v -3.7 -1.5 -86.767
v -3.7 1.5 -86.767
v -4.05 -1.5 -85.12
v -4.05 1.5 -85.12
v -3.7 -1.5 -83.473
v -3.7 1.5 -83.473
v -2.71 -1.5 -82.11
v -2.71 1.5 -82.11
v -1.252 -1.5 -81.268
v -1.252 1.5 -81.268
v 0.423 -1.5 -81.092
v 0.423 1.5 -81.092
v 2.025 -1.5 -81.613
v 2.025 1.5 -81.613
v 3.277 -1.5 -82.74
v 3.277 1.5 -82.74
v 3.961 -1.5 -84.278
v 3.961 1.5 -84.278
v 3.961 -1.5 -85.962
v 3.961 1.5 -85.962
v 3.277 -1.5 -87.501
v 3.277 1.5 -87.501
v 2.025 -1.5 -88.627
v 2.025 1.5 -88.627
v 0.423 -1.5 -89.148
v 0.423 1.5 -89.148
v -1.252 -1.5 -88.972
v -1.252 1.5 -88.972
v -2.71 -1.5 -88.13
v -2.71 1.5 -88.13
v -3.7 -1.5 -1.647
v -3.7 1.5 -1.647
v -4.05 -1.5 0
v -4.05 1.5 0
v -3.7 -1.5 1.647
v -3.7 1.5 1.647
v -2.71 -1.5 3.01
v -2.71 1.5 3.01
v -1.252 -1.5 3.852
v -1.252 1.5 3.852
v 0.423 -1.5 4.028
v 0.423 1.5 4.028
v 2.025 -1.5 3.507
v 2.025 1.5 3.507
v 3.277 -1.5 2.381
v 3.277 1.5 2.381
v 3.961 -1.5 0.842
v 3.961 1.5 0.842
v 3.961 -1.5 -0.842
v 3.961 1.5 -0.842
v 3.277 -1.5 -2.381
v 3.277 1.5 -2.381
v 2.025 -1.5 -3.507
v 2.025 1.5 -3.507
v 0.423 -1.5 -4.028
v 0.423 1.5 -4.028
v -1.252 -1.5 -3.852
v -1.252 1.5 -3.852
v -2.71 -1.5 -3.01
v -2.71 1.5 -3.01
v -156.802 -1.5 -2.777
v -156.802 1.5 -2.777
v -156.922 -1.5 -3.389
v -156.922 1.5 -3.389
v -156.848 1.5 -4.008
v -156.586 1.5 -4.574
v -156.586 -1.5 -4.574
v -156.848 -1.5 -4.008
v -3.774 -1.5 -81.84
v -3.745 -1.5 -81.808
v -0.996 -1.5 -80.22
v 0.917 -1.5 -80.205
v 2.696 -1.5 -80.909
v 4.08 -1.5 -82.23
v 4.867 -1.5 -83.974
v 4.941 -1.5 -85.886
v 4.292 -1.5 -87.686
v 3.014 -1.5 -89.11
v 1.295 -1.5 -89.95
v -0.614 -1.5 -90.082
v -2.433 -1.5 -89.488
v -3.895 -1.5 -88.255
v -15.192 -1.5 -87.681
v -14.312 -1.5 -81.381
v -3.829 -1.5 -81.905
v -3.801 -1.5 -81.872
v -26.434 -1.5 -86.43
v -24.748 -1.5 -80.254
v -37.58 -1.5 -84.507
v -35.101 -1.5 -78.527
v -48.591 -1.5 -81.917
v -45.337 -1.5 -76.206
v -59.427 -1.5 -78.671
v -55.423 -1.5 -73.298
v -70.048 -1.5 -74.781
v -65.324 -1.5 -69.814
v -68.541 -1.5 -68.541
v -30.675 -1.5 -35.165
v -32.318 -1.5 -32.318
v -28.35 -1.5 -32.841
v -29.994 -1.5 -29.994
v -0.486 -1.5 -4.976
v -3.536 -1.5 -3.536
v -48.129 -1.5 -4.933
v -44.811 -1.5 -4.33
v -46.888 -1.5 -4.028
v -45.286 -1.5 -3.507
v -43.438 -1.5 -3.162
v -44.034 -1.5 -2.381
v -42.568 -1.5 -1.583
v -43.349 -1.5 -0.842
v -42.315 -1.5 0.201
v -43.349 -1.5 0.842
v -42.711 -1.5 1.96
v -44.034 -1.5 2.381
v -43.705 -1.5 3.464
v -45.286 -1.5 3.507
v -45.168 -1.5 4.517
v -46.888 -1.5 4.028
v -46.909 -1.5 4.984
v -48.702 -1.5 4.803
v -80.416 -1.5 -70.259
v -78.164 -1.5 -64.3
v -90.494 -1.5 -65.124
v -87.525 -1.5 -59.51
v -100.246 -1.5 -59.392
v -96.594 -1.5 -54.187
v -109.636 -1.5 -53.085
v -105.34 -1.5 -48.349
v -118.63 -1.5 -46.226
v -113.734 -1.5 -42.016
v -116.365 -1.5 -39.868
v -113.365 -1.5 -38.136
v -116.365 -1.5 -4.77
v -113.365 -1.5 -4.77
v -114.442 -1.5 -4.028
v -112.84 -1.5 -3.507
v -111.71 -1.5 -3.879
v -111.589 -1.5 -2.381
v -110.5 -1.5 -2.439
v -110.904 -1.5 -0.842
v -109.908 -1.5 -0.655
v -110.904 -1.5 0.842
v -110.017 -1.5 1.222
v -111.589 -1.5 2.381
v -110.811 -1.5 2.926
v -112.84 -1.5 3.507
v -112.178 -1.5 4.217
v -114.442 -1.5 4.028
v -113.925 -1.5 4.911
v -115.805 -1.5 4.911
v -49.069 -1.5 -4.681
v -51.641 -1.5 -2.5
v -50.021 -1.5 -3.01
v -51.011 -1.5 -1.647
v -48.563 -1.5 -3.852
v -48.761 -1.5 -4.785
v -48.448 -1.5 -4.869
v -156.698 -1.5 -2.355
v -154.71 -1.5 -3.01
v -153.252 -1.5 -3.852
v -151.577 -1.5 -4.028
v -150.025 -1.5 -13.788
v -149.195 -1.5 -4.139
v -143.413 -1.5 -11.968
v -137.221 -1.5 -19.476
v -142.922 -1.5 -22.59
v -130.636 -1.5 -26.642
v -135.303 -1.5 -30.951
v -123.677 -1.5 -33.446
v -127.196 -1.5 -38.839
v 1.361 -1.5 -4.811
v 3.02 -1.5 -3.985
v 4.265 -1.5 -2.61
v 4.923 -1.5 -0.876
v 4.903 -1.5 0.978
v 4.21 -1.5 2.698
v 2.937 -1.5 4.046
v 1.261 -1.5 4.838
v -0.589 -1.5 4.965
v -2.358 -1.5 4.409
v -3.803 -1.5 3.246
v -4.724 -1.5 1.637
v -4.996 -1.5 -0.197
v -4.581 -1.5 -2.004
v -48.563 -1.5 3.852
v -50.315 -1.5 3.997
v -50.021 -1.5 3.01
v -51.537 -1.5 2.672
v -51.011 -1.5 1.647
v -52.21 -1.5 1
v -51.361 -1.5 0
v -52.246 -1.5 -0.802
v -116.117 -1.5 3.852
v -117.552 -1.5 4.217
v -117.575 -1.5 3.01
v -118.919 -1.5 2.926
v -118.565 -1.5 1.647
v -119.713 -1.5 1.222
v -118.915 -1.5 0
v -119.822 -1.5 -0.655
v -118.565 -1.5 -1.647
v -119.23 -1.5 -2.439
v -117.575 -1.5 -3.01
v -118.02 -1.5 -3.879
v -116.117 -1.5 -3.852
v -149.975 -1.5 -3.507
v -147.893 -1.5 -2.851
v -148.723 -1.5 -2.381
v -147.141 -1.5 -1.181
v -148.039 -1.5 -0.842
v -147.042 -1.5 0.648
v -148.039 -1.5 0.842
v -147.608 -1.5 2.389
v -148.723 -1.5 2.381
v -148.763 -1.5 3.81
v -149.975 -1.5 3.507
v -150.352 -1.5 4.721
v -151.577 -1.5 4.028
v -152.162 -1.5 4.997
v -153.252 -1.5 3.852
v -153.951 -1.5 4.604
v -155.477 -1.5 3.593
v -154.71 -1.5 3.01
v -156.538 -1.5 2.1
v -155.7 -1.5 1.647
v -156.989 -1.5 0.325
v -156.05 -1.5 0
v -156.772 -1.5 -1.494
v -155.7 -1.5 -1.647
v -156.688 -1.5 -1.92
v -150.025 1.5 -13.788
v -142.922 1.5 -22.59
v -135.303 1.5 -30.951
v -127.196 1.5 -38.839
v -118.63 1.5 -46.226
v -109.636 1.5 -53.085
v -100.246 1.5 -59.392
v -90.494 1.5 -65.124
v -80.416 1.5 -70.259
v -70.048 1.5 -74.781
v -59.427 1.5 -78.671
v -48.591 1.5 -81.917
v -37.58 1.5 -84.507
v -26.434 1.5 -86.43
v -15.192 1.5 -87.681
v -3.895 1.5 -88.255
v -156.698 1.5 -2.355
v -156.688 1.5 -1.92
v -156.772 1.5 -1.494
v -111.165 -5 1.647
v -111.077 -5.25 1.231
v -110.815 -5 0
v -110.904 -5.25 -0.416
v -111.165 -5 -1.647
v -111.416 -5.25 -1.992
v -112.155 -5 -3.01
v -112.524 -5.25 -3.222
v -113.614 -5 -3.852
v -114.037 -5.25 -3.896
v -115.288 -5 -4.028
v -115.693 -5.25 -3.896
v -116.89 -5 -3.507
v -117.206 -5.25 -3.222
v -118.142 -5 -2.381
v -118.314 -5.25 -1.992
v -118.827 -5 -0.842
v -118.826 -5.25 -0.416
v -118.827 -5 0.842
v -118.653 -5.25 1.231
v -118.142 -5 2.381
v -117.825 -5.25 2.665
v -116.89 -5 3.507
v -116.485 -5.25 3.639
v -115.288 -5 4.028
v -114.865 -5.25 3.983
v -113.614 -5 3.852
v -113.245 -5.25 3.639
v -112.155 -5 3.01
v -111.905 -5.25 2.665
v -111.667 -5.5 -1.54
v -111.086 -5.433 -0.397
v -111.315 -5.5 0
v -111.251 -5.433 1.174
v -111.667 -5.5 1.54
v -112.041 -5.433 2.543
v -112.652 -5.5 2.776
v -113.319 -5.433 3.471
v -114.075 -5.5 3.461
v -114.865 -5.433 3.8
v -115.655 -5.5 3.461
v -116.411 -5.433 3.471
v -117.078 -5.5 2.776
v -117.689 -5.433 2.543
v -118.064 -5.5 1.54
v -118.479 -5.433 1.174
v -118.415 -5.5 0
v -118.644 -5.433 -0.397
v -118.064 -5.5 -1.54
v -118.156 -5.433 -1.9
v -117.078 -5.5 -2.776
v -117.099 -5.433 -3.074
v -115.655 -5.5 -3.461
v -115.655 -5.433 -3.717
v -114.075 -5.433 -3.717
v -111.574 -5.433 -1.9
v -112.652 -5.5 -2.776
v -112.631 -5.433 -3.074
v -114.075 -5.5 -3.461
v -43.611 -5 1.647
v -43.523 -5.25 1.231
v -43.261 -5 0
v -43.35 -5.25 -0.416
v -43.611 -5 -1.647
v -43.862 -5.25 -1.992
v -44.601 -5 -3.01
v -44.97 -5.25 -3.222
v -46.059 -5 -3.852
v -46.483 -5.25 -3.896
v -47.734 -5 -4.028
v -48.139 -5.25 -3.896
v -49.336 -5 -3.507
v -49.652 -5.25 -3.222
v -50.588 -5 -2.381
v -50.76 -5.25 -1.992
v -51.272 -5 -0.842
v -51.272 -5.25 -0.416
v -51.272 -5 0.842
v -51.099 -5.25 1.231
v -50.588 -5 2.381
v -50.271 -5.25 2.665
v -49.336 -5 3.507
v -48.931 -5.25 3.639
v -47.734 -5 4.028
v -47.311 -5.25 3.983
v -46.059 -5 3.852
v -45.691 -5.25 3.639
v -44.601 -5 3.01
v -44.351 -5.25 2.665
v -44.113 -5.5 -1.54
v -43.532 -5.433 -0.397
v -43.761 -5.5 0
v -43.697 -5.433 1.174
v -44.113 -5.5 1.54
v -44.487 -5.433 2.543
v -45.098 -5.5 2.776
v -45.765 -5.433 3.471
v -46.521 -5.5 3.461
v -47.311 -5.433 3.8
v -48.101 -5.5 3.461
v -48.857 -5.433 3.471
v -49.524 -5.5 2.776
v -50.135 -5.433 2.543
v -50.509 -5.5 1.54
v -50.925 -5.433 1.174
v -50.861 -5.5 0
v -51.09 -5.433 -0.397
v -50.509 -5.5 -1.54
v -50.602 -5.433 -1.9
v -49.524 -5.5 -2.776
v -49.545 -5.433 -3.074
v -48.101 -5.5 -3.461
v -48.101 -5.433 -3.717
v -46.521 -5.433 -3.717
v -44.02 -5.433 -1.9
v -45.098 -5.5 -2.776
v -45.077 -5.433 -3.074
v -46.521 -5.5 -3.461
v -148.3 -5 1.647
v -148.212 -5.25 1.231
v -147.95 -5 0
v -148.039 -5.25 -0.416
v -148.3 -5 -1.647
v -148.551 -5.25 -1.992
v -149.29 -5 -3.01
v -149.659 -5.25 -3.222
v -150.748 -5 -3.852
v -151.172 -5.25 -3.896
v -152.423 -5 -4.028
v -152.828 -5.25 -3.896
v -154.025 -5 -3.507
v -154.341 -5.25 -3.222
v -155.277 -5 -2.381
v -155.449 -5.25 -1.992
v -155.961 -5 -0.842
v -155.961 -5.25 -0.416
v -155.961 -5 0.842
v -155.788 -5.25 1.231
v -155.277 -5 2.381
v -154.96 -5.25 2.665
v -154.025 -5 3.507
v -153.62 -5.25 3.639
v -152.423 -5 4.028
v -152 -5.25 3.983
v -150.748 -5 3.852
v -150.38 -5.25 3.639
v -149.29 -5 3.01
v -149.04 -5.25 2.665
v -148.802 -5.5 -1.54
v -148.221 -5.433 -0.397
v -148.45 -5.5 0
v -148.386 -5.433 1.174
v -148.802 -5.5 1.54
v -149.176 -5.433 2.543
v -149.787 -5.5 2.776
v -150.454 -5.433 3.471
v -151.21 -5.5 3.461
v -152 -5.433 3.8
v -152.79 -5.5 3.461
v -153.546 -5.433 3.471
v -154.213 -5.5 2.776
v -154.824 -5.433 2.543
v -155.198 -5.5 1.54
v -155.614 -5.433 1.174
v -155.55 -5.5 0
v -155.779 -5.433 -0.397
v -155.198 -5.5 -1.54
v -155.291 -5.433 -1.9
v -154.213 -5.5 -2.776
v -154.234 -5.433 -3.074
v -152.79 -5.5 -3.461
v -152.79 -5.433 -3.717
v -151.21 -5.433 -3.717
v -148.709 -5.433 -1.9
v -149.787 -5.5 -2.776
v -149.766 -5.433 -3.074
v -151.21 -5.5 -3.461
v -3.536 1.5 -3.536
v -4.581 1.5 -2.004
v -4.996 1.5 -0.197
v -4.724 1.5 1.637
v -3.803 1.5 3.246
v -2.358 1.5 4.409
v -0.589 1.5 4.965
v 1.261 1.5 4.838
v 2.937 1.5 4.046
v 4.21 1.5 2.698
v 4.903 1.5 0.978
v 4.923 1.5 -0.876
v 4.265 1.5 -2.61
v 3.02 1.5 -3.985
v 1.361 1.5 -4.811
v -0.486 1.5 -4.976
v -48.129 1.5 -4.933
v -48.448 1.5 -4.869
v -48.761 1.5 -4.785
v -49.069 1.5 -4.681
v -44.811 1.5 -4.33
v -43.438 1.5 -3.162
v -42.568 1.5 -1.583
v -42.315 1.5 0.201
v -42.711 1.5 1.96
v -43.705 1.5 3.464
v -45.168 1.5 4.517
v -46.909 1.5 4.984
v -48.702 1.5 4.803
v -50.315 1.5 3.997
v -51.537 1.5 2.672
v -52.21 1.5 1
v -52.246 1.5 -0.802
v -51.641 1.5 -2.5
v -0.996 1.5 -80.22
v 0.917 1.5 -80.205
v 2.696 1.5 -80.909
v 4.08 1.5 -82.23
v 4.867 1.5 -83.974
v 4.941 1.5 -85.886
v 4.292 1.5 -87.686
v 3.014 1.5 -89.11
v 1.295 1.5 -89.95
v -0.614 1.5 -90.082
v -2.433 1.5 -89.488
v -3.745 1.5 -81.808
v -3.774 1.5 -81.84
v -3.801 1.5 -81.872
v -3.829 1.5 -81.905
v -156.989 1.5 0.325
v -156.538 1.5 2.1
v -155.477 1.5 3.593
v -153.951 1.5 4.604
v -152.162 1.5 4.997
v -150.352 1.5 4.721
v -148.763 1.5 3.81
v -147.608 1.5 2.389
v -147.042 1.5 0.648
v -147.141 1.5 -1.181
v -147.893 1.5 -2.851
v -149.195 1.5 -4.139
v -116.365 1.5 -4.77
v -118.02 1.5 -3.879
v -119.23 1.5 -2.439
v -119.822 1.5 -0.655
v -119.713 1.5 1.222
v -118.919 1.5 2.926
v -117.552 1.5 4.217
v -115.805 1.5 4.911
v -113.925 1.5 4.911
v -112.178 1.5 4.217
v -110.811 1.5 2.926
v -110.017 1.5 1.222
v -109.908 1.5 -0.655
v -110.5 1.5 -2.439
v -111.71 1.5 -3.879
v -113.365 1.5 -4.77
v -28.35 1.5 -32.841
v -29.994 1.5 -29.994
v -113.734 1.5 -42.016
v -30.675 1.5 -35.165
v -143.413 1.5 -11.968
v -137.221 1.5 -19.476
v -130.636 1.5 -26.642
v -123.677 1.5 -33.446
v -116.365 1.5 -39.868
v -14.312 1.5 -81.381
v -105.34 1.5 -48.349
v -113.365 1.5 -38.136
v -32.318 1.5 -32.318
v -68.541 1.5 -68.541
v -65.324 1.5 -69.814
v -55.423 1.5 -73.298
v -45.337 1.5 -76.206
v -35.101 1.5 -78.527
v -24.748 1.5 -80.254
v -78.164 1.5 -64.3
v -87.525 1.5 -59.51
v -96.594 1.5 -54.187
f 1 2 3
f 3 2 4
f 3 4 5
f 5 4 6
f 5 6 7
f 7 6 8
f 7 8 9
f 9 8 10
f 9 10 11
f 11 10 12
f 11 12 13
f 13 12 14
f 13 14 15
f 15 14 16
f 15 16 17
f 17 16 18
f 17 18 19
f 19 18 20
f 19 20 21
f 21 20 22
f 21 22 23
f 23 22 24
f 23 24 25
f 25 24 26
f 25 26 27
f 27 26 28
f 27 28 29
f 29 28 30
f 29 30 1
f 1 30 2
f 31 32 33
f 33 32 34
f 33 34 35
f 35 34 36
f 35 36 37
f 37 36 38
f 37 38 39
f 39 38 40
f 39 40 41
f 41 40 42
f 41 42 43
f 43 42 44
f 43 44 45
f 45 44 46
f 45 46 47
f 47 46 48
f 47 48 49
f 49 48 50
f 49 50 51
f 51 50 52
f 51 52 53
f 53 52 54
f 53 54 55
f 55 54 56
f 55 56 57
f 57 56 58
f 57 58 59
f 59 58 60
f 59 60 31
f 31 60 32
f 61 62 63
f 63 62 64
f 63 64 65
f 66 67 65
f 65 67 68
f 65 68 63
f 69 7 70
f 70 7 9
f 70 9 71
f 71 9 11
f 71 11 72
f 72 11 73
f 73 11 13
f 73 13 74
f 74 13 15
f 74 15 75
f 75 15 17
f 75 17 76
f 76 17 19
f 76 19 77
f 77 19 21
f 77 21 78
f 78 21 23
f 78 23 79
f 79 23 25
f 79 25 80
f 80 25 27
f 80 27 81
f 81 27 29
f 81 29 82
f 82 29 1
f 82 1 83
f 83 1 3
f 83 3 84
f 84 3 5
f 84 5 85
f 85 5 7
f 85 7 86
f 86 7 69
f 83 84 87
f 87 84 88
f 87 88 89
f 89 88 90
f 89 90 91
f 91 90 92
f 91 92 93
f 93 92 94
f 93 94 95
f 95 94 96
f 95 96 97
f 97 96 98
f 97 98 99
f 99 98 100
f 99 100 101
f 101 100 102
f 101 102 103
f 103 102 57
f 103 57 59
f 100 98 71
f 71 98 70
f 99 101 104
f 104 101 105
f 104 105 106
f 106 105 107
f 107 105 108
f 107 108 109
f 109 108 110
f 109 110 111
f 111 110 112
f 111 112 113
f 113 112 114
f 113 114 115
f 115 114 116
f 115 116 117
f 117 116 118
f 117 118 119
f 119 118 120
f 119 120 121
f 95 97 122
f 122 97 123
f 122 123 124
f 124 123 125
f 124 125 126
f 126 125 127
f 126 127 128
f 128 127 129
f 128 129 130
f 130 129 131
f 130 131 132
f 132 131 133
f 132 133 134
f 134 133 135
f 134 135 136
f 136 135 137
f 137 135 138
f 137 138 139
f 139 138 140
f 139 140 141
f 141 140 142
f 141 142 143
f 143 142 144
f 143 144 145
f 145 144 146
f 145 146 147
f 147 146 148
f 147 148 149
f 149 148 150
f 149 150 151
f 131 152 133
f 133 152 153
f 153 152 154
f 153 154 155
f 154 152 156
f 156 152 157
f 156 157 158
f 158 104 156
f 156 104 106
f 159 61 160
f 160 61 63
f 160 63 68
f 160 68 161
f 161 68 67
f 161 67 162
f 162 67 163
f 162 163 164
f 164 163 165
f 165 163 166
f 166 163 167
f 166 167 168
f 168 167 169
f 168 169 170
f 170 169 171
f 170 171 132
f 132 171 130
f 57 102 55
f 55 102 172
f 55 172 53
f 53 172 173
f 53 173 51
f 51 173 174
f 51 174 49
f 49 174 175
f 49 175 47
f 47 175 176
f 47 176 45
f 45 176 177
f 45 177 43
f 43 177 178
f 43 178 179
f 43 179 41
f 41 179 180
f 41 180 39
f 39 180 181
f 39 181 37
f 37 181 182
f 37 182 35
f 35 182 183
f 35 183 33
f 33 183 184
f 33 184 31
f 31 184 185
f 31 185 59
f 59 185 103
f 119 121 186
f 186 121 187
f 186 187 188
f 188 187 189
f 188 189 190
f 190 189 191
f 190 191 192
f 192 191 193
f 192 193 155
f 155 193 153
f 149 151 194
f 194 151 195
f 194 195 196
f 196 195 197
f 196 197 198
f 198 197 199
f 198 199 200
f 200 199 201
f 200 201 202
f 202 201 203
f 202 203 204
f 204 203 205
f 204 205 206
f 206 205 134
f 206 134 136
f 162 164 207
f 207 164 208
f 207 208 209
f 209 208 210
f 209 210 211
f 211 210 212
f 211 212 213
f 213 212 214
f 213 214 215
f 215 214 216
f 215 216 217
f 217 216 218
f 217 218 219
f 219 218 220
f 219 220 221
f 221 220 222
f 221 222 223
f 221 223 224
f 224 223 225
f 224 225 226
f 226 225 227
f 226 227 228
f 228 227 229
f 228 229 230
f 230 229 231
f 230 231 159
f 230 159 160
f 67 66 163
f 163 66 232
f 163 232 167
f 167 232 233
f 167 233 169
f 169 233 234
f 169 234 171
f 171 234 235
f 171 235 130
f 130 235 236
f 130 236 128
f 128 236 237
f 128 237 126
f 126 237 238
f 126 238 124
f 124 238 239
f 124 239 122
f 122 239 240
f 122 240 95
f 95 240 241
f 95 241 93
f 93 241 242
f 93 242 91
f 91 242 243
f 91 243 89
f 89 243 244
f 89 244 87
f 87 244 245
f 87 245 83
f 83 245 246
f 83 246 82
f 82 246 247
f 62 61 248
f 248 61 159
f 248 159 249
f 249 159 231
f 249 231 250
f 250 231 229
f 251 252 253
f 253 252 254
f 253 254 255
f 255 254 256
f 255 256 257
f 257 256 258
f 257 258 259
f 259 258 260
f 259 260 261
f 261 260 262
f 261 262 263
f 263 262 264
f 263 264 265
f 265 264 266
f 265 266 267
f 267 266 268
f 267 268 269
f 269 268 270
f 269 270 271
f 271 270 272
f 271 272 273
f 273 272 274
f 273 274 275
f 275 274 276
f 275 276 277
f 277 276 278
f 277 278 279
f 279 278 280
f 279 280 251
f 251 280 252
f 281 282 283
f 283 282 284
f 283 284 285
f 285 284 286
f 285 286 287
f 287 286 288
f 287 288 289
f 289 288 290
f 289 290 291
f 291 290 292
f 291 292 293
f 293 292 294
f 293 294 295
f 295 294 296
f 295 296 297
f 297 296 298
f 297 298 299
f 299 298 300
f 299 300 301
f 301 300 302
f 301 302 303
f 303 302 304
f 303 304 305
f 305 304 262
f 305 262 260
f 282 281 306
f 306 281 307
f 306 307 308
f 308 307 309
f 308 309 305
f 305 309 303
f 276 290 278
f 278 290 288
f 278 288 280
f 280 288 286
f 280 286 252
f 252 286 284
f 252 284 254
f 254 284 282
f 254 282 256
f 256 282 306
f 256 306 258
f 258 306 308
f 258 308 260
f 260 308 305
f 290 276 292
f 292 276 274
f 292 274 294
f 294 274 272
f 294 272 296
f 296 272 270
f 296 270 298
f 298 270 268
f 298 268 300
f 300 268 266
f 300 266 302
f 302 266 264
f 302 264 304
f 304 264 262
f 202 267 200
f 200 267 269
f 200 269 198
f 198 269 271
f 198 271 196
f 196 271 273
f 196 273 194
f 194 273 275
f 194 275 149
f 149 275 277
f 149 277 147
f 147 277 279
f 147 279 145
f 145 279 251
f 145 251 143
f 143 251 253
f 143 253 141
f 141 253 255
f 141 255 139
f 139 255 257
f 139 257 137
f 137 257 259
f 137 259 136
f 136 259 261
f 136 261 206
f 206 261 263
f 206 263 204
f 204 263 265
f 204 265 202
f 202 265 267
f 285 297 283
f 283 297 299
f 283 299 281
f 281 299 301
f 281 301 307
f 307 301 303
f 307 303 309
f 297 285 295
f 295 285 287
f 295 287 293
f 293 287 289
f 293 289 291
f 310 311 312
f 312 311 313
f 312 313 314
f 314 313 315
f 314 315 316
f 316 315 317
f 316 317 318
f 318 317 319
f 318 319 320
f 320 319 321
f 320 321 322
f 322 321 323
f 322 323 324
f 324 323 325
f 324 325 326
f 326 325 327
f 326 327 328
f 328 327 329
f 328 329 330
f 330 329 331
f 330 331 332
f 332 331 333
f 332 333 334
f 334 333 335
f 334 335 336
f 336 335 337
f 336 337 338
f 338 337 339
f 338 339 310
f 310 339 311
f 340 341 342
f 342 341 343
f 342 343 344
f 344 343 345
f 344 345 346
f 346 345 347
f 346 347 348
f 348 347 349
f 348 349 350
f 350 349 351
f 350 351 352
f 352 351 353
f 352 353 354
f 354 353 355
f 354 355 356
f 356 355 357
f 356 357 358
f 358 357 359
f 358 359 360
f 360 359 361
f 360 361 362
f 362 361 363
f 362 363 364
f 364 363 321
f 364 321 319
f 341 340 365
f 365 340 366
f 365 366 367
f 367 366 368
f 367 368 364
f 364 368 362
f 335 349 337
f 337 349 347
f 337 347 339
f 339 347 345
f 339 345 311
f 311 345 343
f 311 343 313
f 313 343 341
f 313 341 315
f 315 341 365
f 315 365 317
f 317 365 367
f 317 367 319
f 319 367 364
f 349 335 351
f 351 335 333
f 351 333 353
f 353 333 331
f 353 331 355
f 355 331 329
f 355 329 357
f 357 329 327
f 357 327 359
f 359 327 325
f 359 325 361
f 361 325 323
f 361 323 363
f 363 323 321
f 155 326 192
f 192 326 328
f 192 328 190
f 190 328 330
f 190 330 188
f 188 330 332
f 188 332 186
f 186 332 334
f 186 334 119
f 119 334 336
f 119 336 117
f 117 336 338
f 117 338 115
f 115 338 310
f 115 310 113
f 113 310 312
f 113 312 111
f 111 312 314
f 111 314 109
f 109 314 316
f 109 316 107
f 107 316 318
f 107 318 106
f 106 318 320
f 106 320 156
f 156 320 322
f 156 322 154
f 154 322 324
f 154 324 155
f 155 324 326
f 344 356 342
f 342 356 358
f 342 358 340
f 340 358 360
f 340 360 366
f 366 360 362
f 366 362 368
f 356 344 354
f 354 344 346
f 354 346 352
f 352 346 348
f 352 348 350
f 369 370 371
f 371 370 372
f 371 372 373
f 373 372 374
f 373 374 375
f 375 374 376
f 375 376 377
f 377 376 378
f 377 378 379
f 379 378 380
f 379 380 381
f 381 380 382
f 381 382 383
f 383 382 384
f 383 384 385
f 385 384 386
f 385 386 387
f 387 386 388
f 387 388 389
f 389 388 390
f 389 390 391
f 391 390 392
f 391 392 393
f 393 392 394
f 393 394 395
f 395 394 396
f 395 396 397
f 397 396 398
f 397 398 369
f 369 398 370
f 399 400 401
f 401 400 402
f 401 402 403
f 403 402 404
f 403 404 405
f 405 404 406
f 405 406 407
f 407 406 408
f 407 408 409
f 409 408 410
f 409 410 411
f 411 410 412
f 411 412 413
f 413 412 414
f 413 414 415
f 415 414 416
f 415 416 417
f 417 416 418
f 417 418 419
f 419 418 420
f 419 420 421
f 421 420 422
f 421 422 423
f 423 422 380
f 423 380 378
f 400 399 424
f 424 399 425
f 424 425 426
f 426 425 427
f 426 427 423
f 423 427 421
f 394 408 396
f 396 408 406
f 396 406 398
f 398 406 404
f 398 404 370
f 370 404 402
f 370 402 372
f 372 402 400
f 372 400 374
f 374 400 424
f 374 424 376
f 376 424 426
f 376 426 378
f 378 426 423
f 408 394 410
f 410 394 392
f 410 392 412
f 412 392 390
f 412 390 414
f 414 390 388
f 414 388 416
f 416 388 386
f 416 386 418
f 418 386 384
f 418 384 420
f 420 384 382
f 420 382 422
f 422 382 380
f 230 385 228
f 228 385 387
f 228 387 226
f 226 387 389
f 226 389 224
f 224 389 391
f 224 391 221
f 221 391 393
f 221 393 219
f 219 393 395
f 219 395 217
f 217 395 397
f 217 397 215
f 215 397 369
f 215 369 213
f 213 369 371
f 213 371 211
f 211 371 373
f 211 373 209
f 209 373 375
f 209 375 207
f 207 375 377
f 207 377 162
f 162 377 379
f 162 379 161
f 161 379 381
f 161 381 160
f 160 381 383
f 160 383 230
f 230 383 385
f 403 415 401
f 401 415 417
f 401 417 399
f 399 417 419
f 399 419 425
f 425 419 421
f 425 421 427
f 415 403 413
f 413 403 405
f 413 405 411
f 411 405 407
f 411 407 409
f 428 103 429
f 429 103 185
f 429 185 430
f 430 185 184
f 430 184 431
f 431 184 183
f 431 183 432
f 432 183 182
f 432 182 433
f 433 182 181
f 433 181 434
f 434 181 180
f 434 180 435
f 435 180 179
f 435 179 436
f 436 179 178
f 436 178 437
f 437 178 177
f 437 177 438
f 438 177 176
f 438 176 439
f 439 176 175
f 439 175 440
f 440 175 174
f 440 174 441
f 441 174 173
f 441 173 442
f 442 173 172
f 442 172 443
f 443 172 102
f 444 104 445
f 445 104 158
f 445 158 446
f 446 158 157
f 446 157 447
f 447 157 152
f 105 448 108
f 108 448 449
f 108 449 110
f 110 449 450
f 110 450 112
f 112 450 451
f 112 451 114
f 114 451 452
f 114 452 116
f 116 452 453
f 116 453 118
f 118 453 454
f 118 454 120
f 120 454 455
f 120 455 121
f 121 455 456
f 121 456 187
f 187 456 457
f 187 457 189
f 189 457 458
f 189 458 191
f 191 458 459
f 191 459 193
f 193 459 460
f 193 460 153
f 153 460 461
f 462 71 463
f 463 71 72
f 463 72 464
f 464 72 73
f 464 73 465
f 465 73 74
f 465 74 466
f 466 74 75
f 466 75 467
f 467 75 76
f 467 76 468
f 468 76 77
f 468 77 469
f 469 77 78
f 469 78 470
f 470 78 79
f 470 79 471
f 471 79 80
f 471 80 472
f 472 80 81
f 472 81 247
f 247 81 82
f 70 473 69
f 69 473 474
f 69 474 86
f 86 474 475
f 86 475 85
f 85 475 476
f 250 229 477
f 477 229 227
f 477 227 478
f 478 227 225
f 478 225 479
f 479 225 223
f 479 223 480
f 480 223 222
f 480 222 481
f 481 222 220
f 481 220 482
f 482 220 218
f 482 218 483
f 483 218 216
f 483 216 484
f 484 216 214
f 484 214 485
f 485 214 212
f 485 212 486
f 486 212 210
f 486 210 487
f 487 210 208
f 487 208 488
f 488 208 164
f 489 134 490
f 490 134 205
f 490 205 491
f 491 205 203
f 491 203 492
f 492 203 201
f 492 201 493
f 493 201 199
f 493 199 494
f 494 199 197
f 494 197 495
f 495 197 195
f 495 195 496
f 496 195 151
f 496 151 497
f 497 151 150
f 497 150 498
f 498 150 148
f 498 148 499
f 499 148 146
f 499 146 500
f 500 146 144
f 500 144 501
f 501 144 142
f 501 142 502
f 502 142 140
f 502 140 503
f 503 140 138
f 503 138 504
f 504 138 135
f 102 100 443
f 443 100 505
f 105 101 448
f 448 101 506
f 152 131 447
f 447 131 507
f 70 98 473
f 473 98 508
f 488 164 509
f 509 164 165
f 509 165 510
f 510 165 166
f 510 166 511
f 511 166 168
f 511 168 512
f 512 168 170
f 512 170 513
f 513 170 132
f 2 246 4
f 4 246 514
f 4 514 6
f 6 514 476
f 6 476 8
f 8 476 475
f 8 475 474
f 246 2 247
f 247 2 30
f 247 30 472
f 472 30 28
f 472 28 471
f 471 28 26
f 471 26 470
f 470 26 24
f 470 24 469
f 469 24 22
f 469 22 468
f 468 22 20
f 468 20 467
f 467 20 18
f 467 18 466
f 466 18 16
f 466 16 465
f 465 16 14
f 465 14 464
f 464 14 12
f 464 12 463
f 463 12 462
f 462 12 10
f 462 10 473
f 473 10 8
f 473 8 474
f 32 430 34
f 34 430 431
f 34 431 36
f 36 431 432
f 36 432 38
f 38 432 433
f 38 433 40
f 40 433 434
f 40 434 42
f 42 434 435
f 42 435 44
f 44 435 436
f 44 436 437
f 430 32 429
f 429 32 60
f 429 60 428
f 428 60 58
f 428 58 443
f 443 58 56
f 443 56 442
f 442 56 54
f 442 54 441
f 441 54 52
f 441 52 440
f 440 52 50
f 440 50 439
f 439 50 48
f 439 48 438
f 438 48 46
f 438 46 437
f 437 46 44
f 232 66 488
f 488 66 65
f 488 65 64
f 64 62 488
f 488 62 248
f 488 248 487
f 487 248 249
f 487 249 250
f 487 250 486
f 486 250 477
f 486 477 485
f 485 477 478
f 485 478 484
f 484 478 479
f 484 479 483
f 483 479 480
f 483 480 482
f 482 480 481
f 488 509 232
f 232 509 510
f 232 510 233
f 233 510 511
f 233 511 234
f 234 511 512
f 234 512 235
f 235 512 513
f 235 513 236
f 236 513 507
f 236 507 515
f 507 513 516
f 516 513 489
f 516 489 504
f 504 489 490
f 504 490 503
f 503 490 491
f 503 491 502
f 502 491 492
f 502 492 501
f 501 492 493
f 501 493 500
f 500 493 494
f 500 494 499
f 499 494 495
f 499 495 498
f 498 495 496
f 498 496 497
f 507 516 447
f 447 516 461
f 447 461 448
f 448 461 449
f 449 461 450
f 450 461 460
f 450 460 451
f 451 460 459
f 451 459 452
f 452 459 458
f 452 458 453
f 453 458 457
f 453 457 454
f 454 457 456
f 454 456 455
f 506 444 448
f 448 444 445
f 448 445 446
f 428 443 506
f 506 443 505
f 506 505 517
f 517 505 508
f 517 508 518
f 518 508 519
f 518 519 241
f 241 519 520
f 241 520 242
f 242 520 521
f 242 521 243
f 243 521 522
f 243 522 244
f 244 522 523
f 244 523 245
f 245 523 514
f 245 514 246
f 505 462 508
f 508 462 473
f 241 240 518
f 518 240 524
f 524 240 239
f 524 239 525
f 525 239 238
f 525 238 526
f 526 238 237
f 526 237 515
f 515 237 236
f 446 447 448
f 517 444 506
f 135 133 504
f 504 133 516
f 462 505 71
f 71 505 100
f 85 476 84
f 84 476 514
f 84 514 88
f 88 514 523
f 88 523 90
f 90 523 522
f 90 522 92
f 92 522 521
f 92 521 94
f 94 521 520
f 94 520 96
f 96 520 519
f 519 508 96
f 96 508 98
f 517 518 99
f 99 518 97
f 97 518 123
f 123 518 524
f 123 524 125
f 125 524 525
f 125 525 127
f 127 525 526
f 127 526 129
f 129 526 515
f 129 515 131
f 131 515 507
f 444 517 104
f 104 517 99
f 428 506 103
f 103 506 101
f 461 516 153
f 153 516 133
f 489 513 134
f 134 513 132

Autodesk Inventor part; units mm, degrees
ref_plane "YZ Plane" through (0, 0, 0) normal (1, 0, 0) x (0, 1, 0)
ref_plane "XZ Plane" through (0, 0, 0) normal (0, 1, 0) x (-1, 0, 0)
ref_plane "XY Plane" through (0, 0, 0) normal (0, 0, 1) x (1, 0, 0)
sketch "Sketch1" plane through (0, 0, 0) normal (0, 1, 0) x (-1, 0, 0)
  arc A0 (-152, 0) -> (152, 0) centre (0, 100) ccw
  line L0 (0, -81.945) -> (-47.311, 0)
  line L1 (-47.311, 0) -> (47.311, 0) construction
  line L2 (47.311, 0) -> (0, -81.945)
  line L3 (0, 0) -> (68.5411, -68.5411)
  line L4 (0, 0) -> (-68.5411, -68.5411)
  line L5 (47.311, 0) -> (116.3651, -39.8684)
  line L6 (-47.311, 0) -> (-116.3651, -39.8684)
  line L7 (114.7776, -42.618) -> (48.4731, -4.3371)
  line L8 (48.4731, -4.3371) -> (0, -88.295)
  line L9 (0, -88.295) -> (-48.4731, -4.3371)
  line L10 (-48.4731, -4.3371) -> (-114.4332, -42.4192)
  line L11 (-66.0999, -70.5901) -> (0, -4.4901)
  line L12 (0, -4.4901) -> (66.2961, -70.7862)
  line L13 (116.3651, -39.8684) -> (114.7776, -42.618)
  line L14 (68.5411, -68.5411) -> (66.2961, -70.7862)
  line L15 (-66.0999, -70.5901) -> (-67.8825, -68.8075)
  line L16 (-114.4332, -42.4192) -> (-115.4867, -40.5945)
  arc A1 (-157.2837, -3.5223) -> (157.2837, -3.5223) centre (0, 100) ccw
  line L17 (157.2837, -3.5223) -> (152, 0)
  line L18 (-152, 0) -> (-157.2837, -3.5223)
  line L19 (116.3651, -39.8684) -> (113.3651, -39.8684)
  line L20 (113.3651, -39.8684) -> (113.3651, 0)
  line L21 (113.3651, 0) -> (116.3651, 0)
  line L22 (116.3651, 0) -> (116.3651, -39.8684)
  line L23 (0, 0) -> (0, -27.315) construction
  line L24 (-116.3651, -39.8684) -> (-113.3651, -39.8684)
  line L25 (-113.3651, -39.8684) -> (-113.3651, 0)
  line L26 (-113.3651, 0) -> (-116.3651, 0)
  line L27 (-116.3651, 0) -> (-116.3651, -39.8684)
  point P0 (-3.6878, -81.9077)
  point P1 (-65.3239, -69.814)
  point P2 (-30.6747, -35.1649)
  point P3 (29.994, -29.994)
  point P4 (-29.994, -29.994)
  point P5 (32.3182, -32.3182)
  point P6 (113.7344, -42.0158)
  point P7 (30.6747, -35.1649)
  point P8 (65.3239, -69.814)
  point P9 (3.6878, -81.9077)
  point P10 (-28.3505, -32.8406)
  point P11 (28.3505, -32.8406)
  point P12 (-32.3182, -32.3182)
  point P13 (-113.7344, -42.0158)
  point P14 (-113.3651, -38.1363)
  point P15 (113.3651, -38.1363)
  point P16 (0, 0)
  dimension "d0" = 152
  dimension "d1" = 152
  dimension "d2" = 100
  dimension "d3" = 0
  dimension "d4" = 45
  dimension "d8" = 3.175
  dimension "d9" = 3.175
  dimension "d10" = 6.35
  dimension "d11" = 6.35
  dimension "d12" = 3.5223
  dimension "d13" = 3.5223
  dimension "d29" = 3
  dimension "d30" = 157.2837
extrude "Extrusion1" add sketch "Sketch1" along normal mid plane 3 contours A0 L16 L10 L15 L11 L9 A1 L18 | L24 L25 L6 L0 L4 L9 L10 A0 | L27 L26 L25 L6 | L6 L25 L24 | A0 L10 L16 | L9 A0 L8 | L8 A0 L12 L14 L7 L13 L17 A1 | A0 L2 L12 L8 | L9 L11 L0 A0 | L4 L9 L11 A0 | L4 L3 L2 L12 L11 L0 | L0 L11 L9 L4 | L12 L8 L3 A0 | A0 L14 L12 | L12 L2 L3 L8 | L11 L15 A0 | L3 L2 L5 L20 L19 A0 L7 L8 | L13 L7 A0 | L19 L20 L5 | L5 L20 L21 L22
sketch "Sketch2" plane through (0, 1.5, 0) normal (0, 1, 0) x (1, 0, 0)
  line L0 (0, 0) -> (29.994, 29.994) projected
  line L1 (0, 0) -> (200, 0)
  line L2 (200, 0) -> (200, 200)
  line L3 (200, 200) -> (0, 200)
  line L4 (0, 200) -> (0, 0)
  dimension "d16" = 200
  dimension "d17" = 200
extrude "Extrusion2" cut sketch "Sketch2" along normal through all both and the other way through all
sketch "Sketch3" plane through (0, 1.5, 0) normal (0, 1, 0) x (1, 0, 0)
  line L0 (-29.994, 29.994) -> (0, 0) projected
  circle A0 centre (0, 0) radius 5
  line L1 (-157.2837, 3.5223) -> (-152, 0) projected
  line L2 (-47.311, 0) -> (-29.994, 29.994) projected
  circle A1 centre (-47.311, 0) radius 5
  line L3 (0, 81.945) -> (0, 88.295) projected
  circle A2 centre (0, 85.12) radius 5
  circle A3 centre (-152, 0) radius 5
  line L4 (-116.3651, 0) -> (-113.3651, 0) projected
  circle A4 centre (-114.8651, 0) radius 5
  dimension "d20" = 10
extrude "Circular_Mounts" add sketch "Sketch3" against normal blind 3
sketch "Sketch4" plane through (0, 1.5, 0) normal (0, 1, 0) x (1, 0, 0)
  arc A0 (-51.6411, 2.5) -> (-44.811, 4.3301) centre (-47.311, 0) ccw projected
  circle A1 centre (-47.311, 0) radius 4.05
  circle A2 centre (0, 0) radius 4.05
  arc A3 (-156.1603, 2.7735) -> (-149.1948, 4.1389) centre (-152, 0) ccw projected
  circle A4 centre (-152, 0) radius 4.05
  arc A5 (-0.9958, 80.2202) -> (-3.8953, 88.2548) centre (0, 85.12) ccw projected
  circle A6 centre (0, 85.12) radius 4.05
  arc A7 (-116.3651, 4.7697) -> (-113.3651, 4.7697) centre (-114.8651, 0) ccw projected
  circle A8 centre (-114.8651, 0) radius 4.05
  dimension "d23" = 8.1
extrude "Inserts" add sketch "Sketch4" against normal blind 7
fillet "Fillet2" radius 0.5 5 edges at (-156.05, -5.5, 0) (-51.361, -5.5, 0) (-4.05, -5.5, 0) (-4.05, -5.5, -85.12) (-118.9151, -5.5, 0)
fillet "Fillet3" radius 2 2 edges at (-156.1603, 0, -2.7735) (-157.2837, 0, -3.5223)
extrude "Extrusion5" cut sketch "Sketch4" along normal through all both and the other way through all contours A2 | A6
equation "\"d1\" = d0"
properties part number "E-Support" material "ABS Plastic"
